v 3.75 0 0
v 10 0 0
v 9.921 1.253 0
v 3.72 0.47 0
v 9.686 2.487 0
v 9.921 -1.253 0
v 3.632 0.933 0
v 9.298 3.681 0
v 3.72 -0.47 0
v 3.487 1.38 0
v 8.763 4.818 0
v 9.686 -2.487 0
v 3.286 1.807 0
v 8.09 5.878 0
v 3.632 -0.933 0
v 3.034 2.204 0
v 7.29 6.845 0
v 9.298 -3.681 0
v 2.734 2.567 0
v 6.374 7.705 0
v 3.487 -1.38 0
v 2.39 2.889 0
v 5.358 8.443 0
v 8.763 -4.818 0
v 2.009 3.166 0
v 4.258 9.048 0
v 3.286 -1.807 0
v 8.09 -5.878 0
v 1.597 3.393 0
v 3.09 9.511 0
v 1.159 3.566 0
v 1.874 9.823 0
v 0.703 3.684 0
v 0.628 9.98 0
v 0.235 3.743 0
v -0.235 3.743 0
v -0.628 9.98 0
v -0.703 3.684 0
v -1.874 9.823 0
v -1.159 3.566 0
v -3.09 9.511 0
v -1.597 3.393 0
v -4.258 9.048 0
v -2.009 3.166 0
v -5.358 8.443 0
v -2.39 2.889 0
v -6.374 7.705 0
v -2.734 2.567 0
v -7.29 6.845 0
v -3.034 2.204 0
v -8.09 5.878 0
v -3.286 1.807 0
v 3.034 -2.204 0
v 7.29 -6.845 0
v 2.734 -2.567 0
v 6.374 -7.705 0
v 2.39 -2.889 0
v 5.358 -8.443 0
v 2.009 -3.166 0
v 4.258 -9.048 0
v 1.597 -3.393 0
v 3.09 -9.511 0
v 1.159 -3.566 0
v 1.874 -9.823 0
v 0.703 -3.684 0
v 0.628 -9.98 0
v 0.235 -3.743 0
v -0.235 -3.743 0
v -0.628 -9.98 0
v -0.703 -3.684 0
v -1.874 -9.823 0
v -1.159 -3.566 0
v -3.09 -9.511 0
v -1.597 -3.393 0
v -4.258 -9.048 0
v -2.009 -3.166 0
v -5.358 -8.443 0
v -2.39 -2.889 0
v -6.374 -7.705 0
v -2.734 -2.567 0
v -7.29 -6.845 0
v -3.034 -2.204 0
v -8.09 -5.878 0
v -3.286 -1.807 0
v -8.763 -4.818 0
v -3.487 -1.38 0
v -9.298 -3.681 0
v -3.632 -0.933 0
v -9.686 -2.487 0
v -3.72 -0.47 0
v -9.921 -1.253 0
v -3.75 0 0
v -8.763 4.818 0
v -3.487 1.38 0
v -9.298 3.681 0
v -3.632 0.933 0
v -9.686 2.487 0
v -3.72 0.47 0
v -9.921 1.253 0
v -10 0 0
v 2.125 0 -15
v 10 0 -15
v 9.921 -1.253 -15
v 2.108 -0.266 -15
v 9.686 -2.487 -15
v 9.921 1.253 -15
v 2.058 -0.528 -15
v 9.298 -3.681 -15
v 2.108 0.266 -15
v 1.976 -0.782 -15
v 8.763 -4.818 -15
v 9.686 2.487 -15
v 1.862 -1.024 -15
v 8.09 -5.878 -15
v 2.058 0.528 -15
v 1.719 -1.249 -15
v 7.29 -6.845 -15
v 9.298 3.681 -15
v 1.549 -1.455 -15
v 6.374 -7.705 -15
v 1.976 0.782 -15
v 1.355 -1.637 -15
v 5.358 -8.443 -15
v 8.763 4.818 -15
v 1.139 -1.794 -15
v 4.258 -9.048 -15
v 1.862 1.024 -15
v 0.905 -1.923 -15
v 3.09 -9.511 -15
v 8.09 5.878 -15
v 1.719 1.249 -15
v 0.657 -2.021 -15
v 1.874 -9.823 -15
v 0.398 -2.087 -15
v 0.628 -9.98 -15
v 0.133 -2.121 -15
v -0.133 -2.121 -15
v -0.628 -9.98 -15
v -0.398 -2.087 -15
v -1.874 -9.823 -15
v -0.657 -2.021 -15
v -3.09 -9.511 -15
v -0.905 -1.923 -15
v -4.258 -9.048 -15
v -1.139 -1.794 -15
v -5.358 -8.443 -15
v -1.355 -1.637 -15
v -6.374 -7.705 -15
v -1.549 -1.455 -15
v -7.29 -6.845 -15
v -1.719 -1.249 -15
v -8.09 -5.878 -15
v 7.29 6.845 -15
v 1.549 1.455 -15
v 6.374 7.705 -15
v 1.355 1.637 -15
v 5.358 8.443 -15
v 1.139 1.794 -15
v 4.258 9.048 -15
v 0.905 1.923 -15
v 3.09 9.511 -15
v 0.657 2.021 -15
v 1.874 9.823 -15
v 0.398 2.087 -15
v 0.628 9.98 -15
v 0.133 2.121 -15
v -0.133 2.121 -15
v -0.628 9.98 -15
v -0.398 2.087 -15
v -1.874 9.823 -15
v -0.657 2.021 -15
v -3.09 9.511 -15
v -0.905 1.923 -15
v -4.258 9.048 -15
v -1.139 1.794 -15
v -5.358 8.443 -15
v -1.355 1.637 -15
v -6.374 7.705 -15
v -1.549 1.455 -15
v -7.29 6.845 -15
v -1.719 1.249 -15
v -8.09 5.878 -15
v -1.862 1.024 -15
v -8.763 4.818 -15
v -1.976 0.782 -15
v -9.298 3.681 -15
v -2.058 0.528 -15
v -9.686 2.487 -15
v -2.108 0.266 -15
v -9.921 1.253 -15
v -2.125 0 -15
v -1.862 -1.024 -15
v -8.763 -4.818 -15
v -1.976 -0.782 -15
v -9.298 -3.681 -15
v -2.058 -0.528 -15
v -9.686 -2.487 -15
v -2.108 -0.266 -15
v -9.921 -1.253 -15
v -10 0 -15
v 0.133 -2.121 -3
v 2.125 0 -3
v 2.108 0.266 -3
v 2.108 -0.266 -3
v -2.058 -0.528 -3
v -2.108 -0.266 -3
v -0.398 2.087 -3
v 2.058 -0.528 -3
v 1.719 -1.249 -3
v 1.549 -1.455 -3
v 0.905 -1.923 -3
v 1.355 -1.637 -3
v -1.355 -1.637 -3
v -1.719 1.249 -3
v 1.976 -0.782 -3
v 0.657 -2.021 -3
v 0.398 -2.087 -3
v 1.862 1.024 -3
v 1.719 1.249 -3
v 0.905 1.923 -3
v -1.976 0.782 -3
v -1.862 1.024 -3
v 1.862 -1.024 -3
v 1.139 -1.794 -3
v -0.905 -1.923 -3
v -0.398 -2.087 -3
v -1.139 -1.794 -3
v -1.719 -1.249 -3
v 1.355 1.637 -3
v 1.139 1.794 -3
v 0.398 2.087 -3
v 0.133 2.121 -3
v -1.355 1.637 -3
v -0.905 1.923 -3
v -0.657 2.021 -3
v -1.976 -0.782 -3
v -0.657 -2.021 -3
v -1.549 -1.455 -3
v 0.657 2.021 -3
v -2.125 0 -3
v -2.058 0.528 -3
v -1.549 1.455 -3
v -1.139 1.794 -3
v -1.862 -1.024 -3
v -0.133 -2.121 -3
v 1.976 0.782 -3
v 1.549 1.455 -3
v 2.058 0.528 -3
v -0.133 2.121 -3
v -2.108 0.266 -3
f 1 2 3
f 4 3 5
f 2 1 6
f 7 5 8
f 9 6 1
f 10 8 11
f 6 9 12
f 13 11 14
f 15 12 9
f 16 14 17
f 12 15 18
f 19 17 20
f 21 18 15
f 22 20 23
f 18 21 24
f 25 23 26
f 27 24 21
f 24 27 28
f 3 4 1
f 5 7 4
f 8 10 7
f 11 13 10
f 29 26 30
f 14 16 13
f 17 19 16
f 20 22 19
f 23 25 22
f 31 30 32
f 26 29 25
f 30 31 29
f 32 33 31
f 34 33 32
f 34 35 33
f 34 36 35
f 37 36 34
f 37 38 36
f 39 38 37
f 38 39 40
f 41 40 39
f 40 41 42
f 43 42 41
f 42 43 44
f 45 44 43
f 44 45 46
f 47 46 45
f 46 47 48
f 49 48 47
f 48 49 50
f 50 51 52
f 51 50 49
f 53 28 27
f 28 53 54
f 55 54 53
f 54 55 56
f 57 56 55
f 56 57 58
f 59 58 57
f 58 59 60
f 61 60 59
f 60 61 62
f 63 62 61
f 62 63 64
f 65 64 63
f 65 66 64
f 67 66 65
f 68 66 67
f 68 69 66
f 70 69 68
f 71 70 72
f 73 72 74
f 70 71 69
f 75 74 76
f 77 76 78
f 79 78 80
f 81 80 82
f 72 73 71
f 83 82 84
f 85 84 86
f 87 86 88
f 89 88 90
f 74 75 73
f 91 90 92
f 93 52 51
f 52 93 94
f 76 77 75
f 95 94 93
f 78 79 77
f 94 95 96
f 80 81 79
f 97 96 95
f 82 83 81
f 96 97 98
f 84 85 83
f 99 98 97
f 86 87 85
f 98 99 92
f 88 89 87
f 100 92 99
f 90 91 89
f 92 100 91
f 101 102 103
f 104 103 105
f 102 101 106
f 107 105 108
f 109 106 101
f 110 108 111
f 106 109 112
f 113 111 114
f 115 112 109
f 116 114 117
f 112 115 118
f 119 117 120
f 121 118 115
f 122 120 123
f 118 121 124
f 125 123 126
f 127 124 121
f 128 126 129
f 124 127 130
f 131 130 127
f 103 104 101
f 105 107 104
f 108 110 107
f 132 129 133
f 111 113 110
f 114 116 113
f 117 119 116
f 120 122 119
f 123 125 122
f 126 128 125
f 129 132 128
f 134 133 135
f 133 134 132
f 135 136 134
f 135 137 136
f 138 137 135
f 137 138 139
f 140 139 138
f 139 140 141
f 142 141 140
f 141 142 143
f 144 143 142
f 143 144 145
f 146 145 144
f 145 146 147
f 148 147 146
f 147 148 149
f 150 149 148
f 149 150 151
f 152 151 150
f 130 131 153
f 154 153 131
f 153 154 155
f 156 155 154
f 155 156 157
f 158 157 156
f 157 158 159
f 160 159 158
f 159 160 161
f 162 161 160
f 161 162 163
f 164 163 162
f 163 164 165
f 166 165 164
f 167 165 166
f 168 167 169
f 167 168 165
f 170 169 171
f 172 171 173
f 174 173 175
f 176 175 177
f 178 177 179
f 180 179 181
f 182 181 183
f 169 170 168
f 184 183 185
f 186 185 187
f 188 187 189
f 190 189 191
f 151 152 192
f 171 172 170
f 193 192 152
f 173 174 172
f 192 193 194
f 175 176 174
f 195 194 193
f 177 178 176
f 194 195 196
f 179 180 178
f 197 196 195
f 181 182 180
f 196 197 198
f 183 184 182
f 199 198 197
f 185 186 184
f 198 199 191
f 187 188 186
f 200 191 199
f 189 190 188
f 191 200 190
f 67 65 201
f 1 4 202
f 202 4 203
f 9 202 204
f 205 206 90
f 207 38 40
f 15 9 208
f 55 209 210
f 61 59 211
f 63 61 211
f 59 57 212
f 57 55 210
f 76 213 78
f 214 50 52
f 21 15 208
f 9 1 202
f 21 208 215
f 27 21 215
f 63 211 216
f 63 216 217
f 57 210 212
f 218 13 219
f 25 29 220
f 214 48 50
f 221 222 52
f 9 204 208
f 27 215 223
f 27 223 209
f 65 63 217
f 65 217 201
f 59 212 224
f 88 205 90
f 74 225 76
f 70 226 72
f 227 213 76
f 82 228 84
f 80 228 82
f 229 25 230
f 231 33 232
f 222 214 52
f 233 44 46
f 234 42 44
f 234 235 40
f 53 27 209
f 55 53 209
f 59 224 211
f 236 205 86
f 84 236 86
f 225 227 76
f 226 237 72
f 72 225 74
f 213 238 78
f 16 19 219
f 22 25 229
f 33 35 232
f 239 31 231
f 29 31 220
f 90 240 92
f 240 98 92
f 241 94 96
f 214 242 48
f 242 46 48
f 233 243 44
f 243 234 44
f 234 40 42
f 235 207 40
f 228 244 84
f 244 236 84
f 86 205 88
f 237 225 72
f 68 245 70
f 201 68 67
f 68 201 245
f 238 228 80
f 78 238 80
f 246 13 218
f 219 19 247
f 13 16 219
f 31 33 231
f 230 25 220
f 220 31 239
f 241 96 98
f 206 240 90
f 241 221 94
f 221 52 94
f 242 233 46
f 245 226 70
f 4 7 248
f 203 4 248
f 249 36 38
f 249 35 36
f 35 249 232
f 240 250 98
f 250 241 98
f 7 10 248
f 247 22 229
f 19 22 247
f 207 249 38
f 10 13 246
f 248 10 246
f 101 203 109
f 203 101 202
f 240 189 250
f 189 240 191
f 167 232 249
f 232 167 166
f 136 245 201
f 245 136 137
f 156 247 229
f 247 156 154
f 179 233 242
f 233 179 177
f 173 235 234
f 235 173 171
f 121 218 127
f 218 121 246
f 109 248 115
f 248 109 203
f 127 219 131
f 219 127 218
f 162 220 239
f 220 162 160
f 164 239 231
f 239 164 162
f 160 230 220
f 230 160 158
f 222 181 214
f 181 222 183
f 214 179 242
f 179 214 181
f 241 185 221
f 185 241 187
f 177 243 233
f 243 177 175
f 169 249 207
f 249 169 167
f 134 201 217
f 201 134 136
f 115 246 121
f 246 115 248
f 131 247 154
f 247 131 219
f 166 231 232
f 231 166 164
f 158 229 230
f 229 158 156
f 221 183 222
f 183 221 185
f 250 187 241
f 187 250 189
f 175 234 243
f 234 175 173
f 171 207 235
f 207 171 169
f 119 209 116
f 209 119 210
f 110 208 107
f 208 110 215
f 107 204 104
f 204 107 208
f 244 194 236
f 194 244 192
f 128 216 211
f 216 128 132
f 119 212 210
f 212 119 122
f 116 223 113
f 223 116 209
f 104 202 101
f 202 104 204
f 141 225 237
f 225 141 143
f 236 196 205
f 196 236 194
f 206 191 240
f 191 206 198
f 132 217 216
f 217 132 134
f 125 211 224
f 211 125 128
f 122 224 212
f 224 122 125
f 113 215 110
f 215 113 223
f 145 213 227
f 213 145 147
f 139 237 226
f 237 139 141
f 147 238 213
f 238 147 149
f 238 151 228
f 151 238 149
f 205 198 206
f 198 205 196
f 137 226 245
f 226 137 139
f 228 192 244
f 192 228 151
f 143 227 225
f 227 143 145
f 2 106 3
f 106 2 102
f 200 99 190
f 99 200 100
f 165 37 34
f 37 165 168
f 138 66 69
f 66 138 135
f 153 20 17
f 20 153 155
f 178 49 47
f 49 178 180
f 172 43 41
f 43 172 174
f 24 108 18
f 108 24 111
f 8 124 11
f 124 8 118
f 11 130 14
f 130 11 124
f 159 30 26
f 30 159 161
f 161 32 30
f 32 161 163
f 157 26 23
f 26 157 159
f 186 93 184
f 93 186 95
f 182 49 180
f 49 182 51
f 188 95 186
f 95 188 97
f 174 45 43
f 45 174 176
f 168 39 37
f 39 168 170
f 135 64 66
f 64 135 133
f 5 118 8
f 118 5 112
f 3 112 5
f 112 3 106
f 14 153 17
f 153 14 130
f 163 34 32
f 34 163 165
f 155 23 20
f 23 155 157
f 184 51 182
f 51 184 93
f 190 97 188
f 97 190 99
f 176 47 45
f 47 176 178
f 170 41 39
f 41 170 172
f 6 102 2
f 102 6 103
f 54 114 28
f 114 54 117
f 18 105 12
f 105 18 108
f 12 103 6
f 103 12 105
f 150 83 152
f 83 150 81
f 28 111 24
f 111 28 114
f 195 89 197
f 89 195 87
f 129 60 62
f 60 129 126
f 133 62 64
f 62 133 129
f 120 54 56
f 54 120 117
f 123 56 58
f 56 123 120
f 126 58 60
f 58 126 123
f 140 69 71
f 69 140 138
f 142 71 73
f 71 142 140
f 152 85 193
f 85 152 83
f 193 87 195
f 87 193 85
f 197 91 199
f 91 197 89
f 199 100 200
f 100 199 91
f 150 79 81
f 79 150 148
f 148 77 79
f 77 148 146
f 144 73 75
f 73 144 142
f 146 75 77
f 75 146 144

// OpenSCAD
$fn = 50;


difference() {
	union() {
		translate(v = [0, 0, -15.0000000000]) {
			cylinder(h = 15, r = 10.0000000000);
		}
		cylinder(h = 0, r = 13.0000000000);
	}
	union() {
		translate(v = [0, 0, 0]) {
			rotate(a = [0, 0, 0]) {
				difference() {
					union() {
						#translate(v = [0, 0, -15.0000000000]) {
							cylinder(h = 15, r = 2.0000000000);
						}
						#translate(v = [0, 0, -3]) {
							cylinder(h = 3, r1 = 2.1250000000, r2 = 3.7500000000);
						}
						#translate(v = [0, 0, -15.0000000000]) {
							cylinder(h = 15, r = 2.1250000000);
						}
						#translate(v = [0, 0, -15.0000000000]) {
							cylinder(h = 15, r = 2.0000000000);
						}
					}
					union();
				}
			}
		}
	}
}
